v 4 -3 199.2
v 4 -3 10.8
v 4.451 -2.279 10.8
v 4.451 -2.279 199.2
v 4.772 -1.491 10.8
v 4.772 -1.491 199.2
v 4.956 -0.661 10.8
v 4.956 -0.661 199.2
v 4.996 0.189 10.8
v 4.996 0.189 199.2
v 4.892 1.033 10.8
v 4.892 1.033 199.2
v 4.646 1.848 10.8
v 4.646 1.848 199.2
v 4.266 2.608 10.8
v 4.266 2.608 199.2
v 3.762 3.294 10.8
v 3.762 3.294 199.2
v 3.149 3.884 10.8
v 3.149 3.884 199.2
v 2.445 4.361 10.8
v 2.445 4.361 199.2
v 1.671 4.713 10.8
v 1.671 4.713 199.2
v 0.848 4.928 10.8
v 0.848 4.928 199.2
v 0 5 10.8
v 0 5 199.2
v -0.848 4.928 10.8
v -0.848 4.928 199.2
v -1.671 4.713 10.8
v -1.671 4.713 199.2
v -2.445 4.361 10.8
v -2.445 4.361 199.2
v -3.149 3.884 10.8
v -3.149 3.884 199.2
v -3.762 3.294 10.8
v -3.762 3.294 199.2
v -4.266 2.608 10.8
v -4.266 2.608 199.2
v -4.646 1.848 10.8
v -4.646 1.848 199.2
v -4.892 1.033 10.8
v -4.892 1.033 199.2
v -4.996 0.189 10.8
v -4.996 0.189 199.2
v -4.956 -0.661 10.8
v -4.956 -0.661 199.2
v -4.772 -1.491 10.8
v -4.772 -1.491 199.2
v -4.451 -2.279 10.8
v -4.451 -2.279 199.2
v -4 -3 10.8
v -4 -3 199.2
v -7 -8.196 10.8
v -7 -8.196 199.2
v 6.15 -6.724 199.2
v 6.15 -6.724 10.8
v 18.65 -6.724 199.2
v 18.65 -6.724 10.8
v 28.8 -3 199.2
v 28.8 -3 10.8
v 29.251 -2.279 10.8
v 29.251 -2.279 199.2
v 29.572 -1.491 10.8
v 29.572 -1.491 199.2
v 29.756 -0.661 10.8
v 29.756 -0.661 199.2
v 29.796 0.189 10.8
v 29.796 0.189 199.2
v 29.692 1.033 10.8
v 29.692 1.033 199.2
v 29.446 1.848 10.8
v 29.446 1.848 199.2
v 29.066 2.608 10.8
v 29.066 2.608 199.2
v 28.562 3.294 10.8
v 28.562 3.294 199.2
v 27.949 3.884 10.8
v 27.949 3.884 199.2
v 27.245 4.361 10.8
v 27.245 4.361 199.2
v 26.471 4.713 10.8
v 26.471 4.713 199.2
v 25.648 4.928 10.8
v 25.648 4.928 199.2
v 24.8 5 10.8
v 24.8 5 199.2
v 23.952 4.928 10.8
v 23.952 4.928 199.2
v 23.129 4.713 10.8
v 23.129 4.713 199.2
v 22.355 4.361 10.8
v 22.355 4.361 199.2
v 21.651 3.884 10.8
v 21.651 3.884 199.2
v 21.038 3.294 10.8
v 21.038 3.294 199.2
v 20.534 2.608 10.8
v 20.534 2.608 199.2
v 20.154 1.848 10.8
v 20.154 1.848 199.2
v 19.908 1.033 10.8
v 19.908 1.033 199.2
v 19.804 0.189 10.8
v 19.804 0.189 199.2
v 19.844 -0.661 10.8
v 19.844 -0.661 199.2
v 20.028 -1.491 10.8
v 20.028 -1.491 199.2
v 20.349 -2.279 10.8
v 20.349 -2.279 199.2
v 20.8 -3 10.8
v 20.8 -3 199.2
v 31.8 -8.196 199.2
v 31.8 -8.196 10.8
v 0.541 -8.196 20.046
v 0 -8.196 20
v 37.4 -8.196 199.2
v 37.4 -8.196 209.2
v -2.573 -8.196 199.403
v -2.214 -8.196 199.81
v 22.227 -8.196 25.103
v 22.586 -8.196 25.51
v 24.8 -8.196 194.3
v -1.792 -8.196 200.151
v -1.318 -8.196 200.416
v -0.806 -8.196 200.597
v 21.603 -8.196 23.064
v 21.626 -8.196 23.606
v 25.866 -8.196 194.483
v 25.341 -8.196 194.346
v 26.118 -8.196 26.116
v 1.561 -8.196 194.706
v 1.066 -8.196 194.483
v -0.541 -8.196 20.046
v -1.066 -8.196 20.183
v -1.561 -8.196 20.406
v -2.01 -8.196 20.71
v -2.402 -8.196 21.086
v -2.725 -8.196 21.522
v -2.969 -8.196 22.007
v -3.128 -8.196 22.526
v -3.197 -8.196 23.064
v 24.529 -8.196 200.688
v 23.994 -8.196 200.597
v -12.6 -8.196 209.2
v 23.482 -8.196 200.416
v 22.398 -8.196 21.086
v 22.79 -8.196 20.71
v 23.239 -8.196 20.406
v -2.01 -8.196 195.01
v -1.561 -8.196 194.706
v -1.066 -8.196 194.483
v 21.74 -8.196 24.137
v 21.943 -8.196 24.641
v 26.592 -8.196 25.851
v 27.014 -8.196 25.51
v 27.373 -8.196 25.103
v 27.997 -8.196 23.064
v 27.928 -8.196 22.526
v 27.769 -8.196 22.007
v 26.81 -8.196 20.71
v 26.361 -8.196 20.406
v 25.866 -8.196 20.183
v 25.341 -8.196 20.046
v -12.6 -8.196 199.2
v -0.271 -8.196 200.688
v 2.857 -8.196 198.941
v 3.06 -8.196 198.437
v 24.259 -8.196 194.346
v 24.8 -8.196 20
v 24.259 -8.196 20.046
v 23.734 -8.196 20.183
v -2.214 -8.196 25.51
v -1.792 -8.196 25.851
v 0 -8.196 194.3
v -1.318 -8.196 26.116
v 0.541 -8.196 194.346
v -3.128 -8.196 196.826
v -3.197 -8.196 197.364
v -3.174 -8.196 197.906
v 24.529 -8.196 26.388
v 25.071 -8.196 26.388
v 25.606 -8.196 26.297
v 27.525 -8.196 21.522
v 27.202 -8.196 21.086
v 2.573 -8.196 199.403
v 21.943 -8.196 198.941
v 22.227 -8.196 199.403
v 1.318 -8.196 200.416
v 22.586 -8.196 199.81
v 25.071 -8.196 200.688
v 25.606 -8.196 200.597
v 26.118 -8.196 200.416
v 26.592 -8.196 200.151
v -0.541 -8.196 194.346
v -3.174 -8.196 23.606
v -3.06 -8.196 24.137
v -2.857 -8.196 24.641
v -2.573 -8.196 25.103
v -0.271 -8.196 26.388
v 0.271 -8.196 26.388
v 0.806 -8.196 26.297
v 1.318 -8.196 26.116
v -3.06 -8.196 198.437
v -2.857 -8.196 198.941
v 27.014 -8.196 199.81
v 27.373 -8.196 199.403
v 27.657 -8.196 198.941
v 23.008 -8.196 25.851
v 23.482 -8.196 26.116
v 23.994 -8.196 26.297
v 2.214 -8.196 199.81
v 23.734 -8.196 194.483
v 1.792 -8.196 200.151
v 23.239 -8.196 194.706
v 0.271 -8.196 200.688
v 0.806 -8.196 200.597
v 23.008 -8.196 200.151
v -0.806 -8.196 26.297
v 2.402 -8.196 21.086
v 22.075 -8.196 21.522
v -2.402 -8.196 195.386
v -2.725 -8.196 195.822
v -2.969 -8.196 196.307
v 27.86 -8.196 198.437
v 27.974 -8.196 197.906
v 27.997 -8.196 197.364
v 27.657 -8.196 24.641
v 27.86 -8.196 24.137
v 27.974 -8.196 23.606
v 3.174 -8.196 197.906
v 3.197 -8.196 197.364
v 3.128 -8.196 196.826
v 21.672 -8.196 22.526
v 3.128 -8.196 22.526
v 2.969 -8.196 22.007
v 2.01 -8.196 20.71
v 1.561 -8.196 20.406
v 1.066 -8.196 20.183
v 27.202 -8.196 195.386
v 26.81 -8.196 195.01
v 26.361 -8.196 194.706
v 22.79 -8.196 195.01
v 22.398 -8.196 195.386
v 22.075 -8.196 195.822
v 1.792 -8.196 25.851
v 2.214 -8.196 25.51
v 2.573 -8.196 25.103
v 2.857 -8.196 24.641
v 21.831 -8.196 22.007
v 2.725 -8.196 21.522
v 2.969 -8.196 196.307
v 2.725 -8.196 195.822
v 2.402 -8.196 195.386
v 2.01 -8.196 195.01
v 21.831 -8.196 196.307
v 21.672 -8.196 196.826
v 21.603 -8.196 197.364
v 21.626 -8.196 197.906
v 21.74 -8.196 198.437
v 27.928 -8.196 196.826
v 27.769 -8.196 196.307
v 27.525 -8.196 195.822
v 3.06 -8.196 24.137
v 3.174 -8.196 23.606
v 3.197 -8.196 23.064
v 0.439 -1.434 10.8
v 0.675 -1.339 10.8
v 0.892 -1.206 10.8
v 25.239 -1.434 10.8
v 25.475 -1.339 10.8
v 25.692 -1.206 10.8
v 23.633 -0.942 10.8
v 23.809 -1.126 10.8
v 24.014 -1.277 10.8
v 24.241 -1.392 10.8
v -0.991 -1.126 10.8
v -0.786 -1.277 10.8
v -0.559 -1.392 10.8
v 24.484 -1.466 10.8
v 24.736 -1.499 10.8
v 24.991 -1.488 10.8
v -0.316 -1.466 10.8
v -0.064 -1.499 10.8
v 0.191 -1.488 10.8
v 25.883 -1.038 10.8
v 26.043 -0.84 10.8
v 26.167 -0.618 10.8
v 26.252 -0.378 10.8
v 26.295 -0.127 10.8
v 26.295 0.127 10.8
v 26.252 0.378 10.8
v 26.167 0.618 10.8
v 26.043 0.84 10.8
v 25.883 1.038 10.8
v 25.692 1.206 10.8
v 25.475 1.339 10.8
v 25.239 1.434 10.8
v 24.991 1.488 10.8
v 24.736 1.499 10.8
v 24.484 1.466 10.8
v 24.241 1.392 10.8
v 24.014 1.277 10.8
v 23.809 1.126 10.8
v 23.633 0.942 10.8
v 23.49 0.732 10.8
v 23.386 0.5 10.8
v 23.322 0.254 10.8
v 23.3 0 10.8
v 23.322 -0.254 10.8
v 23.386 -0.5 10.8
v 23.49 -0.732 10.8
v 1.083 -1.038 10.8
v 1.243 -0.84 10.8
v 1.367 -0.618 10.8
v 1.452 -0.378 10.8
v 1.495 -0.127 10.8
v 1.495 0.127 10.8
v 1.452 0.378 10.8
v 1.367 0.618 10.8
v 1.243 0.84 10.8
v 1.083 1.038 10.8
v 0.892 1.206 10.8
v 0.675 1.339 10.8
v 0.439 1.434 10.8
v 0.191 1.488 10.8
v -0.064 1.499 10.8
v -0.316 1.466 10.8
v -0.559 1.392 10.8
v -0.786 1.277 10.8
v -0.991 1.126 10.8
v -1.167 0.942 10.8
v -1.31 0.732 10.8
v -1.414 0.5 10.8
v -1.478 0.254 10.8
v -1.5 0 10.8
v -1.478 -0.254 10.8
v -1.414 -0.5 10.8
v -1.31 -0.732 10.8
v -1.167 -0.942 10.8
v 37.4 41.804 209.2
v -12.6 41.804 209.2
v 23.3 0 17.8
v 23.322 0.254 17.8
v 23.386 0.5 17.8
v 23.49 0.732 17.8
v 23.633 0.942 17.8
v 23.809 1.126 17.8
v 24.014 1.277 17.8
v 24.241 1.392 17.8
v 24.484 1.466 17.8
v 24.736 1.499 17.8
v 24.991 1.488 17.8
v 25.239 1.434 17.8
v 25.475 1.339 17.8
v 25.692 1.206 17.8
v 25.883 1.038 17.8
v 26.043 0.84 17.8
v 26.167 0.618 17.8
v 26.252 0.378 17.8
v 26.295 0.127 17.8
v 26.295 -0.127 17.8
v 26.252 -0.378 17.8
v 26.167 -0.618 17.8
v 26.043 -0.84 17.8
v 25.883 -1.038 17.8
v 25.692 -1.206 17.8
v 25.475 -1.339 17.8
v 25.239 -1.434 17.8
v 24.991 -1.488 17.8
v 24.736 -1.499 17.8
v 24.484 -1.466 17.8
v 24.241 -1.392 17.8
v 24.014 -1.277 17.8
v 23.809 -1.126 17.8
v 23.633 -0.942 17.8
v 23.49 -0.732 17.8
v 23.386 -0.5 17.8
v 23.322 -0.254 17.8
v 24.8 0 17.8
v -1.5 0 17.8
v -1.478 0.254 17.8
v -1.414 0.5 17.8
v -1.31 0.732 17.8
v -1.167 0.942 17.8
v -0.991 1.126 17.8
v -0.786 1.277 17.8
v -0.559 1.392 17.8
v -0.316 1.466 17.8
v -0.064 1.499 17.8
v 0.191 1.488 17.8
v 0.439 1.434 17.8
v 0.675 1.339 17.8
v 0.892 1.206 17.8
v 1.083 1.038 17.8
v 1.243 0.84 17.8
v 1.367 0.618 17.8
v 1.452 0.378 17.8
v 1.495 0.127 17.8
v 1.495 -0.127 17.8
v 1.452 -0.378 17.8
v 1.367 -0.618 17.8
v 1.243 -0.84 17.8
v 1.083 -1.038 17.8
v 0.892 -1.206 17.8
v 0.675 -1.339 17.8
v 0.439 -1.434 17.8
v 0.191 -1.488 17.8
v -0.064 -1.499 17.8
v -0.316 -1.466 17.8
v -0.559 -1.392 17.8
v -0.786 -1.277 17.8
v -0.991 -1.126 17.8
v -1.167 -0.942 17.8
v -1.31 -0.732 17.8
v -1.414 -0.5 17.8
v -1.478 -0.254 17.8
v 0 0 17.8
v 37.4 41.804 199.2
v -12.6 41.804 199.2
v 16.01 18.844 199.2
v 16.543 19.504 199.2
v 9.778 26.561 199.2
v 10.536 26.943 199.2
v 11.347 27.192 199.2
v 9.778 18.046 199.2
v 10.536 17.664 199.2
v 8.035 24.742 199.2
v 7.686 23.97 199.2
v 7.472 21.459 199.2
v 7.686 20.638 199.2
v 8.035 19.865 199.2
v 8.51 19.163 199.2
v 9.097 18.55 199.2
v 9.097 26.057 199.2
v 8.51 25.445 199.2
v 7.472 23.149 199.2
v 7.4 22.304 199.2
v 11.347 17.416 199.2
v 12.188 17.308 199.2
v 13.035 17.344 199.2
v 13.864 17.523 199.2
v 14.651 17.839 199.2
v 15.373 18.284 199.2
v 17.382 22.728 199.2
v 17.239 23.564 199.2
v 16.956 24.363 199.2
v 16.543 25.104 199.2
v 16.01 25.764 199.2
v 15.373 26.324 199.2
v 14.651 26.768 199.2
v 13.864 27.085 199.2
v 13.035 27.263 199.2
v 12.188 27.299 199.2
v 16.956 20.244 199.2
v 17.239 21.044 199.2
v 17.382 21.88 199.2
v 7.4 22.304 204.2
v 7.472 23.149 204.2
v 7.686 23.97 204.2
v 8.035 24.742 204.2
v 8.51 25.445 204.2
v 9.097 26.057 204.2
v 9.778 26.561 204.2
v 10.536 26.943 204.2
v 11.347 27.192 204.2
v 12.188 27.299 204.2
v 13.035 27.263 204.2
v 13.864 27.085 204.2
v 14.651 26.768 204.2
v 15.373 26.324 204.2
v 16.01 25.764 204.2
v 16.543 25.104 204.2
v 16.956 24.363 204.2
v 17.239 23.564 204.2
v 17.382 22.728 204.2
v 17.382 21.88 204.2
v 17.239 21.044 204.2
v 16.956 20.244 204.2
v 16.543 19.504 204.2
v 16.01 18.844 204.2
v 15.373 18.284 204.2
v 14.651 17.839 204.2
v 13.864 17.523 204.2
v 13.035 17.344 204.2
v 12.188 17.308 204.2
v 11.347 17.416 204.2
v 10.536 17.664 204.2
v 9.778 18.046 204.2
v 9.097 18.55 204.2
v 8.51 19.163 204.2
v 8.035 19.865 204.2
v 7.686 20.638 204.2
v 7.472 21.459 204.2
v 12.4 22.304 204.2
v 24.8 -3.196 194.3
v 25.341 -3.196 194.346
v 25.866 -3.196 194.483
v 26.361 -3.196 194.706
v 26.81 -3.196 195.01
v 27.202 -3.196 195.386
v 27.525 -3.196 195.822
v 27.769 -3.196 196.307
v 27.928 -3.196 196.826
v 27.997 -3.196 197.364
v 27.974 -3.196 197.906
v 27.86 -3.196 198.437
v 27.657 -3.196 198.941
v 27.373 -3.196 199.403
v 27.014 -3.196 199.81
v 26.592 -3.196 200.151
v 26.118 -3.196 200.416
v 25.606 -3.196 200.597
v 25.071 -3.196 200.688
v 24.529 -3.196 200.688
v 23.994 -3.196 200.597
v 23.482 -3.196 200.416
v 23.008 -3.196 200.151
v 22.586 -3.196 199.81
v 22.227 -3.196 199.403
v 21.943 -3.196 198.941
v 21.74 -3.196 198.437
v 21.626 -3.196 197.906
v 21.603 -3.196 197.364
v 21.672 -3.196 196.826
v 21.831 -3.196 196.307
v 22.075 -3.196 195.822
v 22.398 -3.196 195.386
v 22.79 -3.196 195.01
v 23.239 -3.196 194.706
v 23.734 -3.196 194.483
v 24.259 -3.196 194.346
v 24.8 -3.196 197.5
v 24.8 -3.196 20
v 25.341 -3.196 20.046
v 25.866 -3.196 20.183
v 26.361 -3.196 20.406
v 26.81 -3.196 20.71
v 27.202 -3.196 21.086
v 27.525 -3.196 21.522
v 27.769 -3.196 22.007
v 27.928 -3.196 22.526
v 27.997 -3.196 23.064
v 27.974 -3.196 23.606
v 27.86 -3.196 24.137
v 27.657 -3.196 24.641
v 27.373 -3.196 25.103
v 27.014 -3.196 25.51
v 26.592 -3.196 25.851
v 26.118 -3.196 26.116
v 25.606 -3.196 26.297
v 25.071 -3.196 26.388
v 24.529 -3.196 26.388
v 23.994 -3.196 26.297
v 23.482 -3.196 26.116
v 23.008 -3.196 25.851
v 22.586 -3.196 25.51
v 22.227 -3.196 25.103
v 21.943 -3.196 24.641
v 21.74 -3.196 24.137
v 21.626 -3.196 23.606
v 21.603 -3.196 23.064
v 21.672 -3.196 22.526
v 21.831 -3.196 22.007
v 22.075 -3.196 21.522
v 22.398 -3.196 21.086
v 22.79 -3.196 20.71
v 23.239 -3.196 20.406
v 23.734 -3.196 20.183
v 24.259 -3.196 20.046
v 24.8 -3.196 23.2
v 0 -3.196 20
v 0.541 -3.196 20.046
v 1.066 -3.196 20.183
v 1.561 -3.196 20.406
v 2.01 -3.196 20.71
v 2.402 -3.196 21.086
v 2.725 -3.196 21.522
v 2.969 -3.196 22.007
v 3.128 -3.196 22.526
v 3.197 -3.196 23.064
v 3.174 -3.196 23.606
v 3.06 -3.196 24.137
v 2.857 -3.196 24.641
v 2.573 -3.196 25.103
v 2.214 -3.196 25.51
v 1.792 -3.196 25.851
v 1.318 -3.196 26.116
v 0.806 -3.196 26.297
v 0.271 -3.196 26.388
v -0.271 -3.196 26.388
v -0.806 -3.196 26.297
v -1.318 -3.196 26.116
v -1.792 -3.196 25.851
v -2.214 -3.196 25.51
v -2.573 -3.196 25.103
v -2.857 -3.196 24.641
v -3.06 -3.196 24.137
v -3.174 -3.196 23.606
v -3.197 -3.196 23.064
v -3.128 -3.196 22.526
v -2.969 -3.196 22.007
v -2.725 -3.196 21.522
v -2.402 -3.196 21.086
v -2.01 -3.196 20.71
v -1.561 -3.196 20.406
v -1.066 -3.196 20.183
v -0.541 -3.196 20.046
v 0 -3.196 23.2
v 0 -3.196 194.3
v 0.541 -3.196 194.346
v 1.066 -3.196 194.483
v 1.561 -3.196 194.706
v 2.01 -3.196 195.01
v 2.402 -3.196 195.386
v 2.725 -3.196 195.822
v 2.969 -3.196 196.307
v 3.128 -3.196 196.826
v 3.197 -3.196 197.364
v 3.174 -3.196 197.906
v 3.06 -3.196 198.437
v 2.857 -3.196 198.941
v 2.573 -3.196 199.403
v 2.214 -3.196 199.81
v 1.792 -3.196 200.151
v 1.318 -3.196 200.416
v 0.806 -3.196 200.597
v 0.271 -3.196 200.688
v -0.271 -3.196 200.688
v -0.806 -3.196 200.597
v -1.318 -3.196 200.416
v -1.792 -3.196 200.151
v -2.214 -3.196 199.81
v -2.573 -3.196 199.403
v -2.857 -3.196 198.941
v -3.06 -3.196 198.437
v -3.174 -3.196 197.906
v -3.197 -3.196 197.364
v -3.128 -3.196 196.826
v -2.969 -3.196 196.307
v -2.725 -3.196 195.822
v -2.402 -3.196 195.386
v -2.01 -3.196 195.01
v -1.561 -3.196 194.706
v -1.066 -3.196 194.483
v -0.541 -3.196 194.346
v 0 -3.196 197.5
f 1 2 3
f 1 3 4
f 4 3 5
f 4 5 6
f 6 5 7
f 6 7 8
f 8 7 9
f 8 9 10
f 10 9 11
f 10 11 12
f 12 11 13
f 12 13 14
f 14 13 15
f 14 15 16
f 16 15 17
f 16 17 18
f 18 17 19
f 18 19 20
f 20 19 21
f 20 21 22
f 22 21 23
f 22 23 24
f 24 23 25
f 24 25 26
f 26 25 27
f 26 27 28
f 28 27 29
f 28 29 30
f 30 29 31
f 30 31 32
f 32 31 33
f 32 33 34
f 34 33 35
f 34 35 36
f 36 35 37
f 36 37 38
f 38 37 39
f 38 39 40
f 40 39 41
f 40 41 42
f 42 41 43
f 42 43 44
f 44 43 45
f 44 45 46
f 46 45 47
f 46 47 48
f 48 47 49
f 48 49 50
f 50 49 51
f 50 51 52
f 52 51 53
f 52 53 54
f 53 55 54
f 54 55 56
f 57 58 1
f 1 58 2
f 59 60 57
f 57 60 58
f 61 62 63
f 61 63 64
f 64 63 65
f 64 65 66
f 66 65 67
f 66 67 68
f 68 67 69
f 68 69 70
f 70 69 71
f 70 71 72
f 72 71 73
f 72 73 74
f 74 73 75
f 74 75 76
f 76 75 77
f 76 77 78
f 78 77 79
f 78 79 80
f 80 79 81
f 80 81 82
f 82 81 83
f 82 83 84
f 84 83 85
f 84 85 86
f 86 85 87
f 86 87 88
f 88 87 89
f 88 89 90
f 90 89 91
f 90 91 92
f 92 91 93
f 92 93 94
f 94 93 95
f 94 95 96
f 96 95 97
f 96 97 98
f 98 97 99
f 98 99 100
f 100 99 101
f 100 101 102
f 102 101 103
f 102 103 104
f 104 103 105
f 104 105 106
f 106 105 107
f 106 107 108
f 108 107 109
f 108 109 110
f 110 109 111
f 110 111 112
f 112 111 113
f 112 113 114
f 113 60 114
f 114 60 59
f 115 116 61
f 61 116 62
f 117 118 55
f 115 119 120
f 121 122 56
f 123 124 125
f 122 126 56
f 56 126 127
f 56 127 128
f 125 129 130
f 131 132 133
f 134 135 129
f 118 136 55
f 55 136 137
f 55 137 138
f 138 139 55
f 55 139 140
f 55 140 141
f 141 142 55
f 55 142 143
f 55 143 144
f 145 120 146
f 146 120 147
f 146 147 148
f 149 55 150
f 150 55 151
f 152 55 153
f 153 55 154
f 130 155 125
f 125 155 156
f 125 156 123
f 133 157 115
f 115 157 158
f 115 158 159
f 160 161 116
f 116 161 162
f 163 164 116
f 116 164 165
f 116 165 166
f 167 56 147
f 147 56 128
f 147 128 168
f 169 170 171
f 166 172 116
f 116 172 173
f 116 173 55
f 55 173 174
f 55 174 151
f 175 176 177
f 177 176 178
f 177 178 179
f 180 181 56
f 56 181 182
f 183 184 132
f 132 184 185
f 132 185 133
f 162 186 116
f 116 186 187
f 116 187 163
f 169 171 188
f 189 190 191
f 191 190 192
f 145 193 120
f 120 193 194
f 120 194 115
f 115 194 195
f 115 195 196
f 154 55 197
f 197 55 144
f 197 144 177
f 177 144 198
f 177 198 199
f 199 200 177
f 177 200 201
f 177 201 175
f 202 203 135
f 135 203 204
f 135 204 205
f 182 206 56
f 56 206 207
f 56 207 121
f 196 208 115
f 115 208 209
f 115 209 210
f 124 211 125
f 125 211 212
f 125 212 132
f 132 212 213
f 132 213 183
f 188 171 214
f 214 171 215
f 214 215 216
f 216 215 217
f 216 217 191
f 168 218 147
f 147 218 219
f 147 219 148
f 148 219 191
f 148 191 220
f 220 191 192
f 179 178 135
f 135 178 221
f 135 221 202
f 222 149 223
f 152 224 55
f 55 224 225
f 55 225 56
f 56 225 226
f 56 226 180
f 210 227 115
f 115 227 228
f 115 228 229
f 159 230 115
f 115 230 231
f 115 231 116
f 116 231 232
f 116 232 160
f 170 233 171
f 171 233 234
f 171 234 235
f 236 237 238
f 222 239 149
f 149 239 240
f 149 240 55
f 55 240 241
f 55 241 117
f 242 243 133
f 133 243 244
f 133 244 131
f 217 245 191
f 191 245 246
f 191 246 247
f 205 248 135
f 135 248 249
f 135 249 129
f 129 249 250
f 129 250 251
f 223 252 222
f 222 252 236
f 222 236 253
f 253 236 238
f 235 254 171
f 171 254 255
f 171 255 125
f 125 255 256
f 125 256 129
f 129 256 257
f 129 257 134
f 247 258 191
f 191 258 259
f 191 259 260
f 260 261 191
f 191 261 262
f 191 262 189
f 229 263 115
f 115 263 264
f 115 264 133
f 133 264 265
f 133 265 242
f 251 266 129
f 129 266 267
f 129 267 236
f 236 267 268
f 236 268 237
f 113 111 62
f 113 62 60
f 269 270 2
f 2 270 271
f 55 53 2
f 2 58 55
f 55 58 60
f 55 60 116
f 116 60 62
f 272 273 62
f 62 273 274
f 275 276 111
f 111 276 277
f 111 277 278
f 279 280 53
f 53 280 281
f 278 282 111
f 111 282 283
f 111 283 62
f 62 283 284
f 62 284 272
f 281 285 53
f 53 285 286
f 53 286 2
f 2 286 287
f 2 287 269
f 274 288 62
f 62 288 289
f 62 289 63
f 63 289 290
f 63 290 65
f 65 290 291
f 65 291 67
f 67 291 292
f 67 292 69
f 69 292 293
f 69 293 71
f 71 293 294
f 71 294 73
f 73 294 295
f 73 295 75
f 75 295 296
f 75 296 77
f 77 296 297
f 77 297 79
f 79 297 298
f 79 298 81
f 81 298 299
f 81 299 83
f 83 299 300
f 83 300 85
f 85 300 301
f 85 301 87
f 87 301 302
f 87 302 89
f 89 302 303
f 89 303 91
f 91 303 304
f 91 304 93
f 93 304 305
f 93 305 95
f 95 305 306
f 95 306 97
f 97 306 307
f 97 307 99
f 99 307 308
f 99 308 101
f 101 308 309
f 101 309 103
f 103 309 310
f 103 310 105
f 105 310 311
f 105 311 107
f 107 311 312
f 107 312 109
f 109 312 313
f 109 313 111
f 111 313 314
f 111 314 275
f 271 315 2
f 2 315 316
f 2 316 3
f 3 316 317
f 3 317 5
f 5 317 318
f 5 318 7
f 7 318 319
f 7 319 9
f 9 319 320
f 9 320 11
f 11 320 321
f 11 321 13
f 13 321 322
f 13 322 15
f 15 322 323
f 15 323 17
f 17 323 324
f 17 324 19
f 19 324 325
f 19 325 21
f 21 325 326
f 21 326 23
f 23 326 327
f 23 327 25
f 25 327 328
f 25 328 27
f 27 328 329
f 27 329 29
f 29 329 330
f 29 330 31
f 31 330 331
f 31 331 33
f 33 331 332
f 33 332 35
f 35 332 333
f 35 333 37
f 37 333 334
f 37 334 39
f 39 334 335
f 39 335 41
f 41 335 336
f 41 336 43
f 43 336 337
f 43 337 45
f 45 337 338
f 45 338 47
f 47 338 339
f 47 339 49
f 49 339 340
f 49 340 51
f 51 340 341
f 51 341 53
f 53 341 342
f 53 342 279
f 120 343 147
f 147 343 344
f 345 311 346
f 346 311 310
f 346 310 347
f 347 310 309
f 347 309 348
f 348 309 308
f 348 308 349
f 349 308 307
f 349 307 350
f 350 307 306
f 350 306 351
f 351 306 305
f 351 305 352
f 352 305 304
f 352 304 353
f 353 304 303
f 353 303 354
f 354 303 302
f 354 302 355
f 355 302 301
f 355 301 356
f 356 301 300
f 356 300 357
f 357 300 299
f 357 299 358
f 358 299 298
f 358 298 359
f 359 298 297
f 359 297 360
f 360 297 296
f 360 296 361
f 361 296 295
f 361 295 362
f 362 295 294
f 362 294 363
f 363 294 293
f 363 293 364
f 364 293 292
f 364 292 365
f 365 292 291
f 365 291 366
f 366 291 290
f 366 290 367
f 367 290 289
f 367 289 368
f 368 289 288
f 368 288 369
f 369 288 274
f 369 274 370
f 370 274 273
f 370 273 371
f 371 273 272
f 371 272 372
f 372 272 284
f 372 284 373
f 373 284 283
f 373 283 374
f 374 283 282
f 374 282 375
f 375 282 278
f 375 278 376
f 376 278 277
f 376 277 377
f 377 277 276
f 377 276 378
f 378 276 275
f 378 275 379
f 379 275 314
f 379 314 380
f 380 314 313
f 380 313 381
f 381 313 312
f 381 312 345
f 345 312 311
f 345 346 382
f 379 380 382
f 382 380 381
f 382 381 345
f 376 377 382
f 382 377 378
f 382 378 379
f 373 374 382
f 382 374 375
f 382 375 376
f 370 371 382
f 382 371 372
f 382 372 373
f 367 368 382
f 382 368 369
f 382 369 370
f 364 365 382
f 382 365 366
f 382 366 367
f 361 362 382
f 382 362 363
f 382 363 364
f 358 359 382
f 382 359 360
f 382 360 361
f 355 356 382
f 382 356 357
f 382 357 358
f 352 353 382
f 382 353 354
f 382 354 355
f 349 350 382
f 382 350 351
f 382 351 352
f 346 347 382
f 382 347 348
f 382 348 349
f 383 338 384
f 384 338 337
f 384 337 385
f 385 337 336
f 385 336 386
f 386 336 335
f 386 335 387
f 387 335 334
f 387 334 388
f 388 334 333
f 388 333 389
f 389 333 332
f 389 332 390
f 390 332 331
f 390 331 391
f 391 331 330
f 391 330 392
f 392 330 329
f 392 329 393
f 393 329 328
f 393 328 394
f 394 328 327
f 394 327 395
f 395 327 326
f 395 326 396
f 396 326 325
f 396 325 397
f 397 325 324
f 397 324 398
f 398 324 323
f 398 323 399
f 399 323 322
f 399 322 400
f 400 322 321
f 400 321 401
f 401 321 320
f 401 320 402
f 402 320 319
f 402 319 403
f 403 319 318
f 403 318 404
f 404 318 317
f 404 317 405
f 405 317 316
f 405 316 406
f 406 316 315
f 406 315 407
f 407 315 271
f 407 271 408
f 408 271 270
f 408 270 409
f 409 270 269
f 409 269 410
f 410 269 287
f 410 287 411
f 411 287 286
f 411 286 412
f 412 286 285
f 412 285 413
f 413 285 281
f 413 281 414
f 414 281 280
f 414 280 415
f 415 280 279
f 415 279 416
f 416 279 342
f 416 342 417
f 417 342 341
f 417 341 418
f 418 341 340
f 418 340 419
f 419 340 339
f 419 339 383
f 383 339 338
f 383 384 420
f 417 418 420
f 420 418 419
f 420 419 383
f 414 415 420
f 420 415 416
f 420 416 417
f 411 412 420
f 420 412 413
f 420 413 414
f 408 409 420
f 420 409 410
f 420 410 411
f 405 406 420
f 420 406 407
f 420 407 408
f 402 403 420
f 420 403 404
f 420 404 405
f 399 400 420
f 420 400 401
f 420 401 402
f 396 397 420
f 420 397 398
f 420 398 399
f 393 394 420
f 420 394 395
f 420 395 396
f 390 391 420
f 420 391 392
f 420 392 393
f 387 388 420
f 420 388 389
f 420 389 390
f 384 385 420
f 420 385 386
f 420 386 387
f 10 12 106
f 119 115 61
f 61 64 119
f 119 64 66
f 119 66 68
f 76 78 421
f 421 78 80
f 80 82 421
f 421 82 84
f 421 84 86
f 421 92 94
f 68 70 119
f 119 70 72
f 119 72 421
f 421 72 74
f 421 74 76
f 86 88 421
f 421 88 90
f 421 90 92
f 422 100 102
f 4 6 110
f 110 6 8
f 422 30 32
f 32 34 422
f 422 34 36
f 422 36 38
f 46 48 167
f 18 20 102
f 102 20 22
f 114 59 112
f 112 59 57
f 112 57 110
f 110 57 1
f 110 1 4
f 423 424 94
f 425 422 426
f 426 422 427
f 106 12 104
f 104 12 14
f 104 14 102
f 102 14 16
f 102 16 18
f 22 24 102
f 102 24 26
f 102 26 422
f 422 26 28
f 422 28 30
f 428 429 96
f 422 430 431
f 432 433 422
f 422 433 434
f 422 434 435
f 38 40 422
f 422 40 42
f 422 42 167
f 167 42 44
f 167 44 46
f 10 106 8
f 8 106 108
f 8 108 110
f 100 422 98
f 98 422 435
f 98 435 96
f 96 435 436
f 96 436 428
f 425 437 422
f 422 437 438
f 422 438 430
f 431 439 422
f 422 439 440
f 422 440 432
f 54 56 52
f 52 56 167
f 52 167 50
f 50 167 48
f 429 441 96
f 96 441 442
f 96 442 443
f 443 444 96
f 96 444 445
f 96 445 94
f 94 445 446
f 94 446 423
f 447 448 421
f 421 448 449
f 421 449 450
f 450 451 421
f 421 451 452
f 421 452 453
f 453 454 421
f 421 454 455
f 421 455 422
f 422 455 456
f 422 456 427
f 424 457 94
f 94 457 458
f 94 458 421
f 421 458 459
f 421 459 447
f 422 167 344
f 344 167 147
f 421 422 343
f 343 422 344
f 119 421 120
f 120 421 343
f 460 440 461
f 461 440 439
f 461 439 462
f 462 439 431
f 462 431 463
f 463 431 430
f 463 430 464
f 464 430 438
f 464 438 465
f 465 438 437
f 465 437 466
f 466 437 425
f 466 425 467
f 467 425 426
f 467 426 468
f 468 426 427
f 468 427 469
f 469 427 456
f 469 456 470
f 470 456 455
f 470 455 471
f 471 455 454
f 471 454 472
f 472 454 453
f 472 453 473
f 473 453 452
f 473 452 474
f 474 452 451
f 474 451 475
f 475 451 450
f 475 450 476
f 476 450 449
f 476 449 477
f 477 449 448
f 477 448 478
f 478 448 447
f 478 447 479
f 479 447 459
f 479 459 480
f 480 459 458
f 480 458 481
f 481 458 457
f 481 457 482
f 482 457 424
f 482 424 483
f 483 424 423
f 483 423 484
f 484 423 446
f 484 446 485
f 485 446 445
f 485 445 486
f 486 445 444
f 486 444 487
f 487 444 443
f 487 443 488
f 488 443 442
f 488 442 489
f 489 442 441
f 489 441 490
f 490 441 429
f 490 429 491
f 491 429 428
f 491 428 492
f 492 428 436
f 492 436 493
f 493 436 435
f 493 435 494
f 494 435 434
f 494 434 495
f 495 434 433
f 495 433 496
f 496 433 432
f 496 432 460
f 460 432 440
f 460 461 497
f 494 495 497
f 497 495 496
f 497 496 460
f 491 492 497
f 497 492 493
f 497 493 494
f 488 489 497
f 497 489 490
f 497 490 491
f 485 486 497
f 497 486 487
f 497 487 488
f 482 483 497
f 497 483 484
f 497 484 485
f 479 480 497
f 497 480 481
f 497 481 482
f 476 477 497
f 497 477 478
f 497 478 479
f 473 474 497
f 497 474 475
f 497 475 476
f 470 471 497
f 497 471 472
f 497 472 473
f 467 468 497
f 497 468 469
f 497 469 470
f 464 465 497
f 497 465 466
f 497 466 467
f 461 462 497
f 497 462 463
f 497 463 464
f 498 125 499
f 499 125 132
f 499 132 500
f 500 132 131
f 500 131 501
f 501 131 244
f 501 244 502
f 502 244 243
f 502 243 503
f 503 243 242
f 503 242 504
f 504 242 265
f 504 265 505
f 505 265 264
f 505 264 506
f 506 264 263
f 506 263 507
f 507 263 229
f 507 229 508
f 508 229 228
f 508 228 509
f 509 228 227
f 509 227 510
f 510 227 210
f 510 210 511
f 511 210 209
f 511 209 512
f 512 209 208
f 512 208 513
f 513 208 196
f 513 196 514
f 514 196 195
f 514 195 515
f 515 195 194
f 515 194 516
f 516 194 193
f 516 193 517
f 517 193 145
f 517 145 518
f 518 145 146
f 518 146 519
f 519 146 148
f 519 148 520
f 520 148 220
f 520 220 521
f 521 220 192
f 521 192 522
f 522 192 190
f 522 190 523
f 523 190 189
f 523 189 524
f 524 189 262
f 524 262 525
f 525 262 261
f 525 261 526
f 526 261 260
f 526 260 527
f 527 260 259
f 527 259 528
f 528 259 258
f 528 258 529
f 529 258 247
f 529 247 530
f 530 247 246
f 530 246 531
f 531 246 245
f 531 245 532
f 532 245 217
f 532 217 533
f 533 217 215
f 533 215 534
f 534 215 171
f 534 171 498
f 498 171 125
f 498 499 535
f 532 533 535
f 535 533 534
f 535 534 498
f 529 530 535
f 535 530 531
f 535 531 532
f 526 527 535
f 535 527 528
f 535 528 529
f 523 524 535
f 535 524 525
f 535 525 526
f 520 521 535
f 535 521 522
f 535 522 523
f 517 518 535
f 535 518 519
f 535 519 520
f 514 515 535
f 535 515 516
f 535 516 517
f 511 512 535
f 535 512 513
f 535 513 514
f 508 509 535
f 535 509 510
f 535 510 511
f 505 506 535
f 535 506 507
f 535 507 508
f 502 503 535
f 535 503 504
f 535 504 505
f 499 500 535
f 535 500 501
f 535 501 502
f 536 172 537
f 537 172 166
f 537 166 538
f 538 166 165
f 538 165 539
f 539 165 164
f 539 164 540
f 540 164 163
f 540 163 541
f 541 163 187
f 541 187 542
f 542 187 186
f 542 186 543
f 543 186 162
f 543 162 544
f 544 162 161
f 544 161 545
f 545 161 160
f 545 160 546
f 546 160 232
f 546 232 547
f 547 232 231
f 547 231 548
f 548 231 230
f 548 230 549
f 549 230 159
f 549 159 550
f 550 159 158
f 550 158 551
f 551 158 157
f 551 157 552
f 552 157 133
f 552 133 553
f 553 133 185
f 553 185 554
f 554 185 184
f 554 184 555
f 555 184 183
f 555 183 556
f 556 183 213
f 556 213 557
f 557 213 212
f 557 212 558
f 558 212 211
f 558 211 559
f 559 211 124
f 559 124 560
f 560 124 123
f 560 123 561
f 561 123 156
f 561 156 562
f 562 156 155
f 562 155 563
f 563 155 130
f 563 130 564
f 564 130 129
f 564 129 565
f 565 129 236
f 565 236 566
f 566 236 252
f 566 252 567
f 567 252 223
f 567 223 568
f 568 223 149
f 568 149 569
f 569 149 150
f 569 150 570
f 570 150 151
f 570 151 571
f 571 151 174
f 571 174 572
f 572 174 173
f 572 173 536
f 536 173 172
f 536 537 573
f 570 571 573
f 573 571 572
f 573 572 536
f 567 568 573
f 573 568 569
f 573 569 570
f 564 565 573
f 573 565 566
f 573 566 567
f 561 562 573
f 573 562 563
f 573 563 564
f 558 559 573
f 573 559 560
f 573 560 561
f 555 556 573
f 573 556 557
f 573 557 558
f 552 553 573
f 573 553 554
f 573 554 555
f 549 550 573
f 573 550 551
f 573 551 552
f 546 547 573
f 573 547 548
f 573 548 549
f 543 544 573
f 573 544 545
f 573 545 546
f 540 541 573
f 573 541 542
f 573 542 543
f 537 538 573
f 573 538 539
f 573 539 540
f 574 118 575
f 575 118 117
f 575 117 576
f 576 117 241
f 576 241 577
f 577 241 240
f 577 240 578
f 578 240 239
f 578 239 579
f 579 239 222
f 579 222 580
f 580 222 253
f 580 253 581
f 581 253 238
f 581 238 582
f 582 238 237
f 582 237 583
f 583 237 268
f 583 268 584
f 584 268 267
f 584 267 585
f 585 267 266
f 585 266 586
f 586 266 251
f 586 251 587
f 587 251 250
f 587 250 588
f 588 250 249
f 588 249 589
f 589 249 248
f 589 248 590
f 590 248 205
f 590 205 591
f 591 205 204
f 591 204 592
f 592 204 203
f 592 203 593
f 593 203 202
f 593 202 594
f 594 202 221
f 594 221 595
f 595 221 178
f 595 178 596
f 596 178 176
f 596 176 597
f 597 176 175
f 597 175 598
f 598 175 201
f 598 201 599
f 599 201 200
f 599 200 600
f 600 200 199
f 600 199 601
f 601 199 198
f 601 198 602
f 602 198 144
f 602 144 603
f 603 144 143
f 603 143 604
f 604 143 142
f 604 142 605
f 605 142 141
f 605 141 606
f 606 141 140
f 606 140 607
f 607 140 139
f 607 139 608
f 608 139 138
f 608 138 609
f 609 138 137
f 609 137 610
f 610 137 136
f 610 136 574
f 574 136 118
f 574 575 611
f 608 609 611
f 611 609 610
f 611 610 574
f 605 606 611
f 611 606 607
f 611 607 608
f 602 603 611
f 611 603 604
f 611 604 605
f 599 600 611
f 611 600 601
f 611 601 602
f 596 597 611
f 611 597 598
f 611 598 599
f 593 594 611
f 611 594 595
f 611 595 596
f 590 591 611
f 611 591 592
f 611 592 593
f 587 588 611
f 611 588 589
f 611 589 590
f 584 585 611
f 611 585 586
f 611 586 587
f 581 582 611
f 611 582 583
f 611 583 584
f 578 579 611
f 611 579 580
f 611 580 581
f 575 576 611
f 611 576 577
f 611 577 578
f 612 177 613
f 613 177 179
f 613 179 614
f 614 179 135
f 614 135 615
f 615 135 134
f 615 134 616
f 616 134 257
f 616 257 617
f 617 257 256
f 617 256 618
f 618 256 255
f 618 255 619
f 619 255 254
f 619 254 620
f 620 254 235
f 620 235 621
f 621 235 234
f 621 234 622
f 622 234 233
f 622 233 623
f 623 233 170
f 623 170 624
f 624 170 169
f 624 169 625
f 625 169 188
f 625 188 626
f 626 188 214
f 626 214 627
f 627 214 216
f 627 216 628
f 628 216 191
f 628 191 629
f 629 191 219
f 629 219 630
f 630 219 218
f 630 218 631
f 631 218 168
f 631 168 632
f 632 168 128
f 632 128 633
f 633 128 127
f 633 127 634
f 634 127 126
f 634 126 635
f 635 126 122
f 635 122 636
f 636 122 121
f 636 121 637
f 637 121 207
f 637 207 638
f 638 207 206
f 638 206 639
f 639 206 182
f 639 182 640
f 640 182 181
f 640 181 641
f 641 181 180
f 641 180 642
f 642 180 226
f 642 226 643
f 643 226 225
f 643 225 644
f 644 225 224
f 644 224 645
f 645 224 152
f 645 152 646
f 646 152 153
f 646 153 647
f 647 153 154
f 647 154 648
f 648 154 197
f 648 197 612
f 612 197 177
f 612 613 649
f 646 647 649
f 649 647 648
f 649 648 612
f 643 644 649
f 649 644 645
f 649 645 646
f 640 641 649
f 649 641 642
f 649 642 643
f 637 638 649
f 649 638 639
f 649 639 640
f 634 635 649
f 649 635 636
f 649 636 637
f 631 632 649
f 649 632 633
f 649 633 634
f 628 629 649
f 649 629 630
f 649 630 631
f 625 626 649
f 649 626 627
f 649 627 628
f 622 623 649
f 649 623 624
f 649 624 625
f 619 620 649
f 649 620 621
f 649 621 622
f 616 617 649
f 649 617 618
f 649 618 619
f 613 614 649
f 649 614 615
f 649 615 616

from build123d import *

# Parameters (mm, degrees)
BOSS_EXTRUDE1_DEPTH   = 220
BOSS_EXTRUDE1_2_DEPTH = 220
BOSS_EXTRUDE4_DEPTH   = 220
SKETCH5_R             = 1.37
CUT_EXTRUDE1_DEPTH    = 7
CUT_EXTRUDE2_START    = -7
SKETCH6_R             = 1.37
CUT_EXTRUDE2_DEPTH    = 7
CUT_EXTRUDE4_DEPTH    = 10.8
CUT_EXTRUDE5_START    = -10.8
CUT_EXTRUDE5_DEPTH    = 10.8
SKETCH11_R            = 2
CUT_EXTRUDE6_DEPTH    = 7
SKETCH12_R            = 1.5
CUT_EXTRUDE7_DEPTH    = 7
SKETCH13_W            = 50
SKETCH13_H            = 50
BOSS_EXTRUDE5_DEPTH   = 10
SKETCH14_R            = 5
CUT_EXTRUDE8_DEPTH    = 5
SKETCH4_2_R           = 3.2
CUT_EXTRUDE9_DEPTH    = 5


with BuildPart() as part:
    # Sketch1 → Boss-Extrude1 (new body)
    with BuildSketch(Plane.XY):
        with BuildLine():
            Line((-4, -3), (-7, -8.196152423))
            Line((-7, -8.196152423), (7, -8.196152423))
            Line((7, -8.196152423), (4, -3))
            ThreePointArc((4, -3), (0, 5), (-4, -3))
        make_face()
    extrude(amount=BOSS_EXTRUDE1_DEPTH)



with BuildPart() as body_2:
    # Sketch1 → Boss-Extrude1 2 (new body)
    with BuildSketch(Plane.XY):
        with BuildLine():
            Line((31.8, -8.196152423), (28.8, -3))
            ThreePointArc((28.8, -3), (24.8, 5), (20.8, -3))
            Line((20.8, -3), (17.8, -8.196152423))
            Line((17.8, -8.196152423), (31.8, -8.196152423))
        make_face()
    extrude(amount=BOSS_EXTRUDE1_2_DEPTH)


with BuildPart() as part_1:
    add(part.part)

    add(body_2.part)  # Boss-Extrude4 merges body 2
    # Sketch3 → Boss-Extrude4 (add)
    with BuildSketch(Plane.XY.offset(220)):
        Polygon((7, -8.196152423), (17.8, -8.196152423), (18.65, -8.196152423), (18.65, -6.723909236), (6.15, -6.723909236), (6.15, -8.196152423), align=None)
    extrude(amount=-BOSS_EXTRUDE4_DEPTH)

    # Sketch5 → Cut-Extrude1 (cut)
    with BuildSketch(Plane(origin=(0, 0, 0), x_dir=(-1, 0, 0), z_dir=(0, 0, -1))):
        Circle(SKETCH5_R)
        with Locations((-24.8, 0)):
            Circle(SKETCH5_R)
    extrude(amount=-CUT_EXTRUDE1_DEPTH, mode=Mode.SUBTRACT)

    # Sketch6 → Cut-Extrude2 (cut)
    with BuildSketch(Plane.XY.offset(220).offset(CUT_EXTRUDE2_START)):
        Circle(SKETCH6_R)
        with Locations((24.8, 0)):
            Circle(SKETCH6_R)
    extrude(amount=CUT_EXTRUDE2_DEPTH, mode=Mode.SUBTRACT)

    # Sketch9 → Cut-Extrude4 (cut)
    with BuildSketch(Plane(origin=(0, 0, 0), x_dir=(-1, 0, 0), z_dir=(0, 0, -1))):
        with BuildLine():
            Line((-28.8, -3), (-31.8, -8.196152423))
            Line((-31.8, -8.196152423), (7, -8.196152423))
            Line((7, -8.196152423), (4, -3))
            ThreePointArc((4, -3), (0, 5), (-4, -3))
            Line((-4, -3), (-6.15, -6.723909236))
            Line((-6.15, -6.723909236), (-18.65, -6.723909236))
            Line((-18.65, -6.723909236), (-20.8, -3))
            ThreePointArc((-20.8, -3), (-24.8, 5), (-28.8, -3))
        make_face()
    extrude(amount=-CUT_EXTRUDE4_DEPTH, mode=Mode.SUBTRACT)

    # Sketch10 → Cut-Extrude5 (cut)
    with BuildSketch(Plane.XY.offset(220).offset(CUT_EXTRUDE5_START)):
        with BuildLine():
            Line((20.8, -3), (18.65, -6.723909236))
            Line((18.65, -6.723909236), (6.15, -6.723909236))
            Line((6.15, -6.723909236), (4, -3))
            ThreePointArc((4, -3), (0, 5), (-4, -3))
            Line((-4, -3), (-7, -8.196152423))
            Line((-7, -8.196152423), (31.8, -8.196152423))
            Line((31.8, -8.196152423), (28.8, -3))
            ThreePointArc((28.8, -3), (24.8, 5), (20.8, -3))
        make_face()
    extrude(amount=CUT_EXTRUDE5_DEPTH, mode=Mode.SUBTRACT)

    # Sketch11 → Cut-Extrude6 (cut)
    with BuildSketch(Plane.XY.offset(209.2)):
        Circle(SKETCH11_R)
        with Locations((24.8, 0)):
            Circle(SKETCH11_R)
    extrude(amount=-CUT_EXTRUDE6_DEPTH, mode=Mode.SUBTRACT)

    # Sketch12 → Cut-Extrude7 (cut)
    with BuildSketch(Plane(origin=(0, 0, 10.8), x_dir=(-1, 0, 0), z_dir=(0, 0, -1))):
        Circle(SKETCH12_R)
        with Locations((-24.8, 0)):
            Circle(SKETCH12_R)
    extrude(amount=-CUT_EXTRUDE7_DEPTH, mode=Mode.SUBTRACT)

    # Sketch13 → Boss-Extrude5 (add)
    with BuildSketch(Plane.XY.offset(209.2)):
        with Locations((12.4, 16.803847577)):
            Rectangle(SKETCH13_W, SKETCH13_H)
    extrude(amount=-BOSS_EXTRUDE5_DEPTH)

    # Sketch14 → Cut-Extrude8 (cut)
    with BuildSketch(Plane(origin=(0, 0, 199.2), x_dir=(-1, 0, 0), z_dir=(0, 0, -1))):
        with Locations((-12.4, 22.303847577)):
            Circle(SKETCH14_R)
    extrude(amount=-CUT_EXTRUDE8_DEPTH, mode=Mode.SUBTRACT)

    # Sketch4<2> → Cut-Extrude9 (cut)
    with BuildSketch(Plane.XZ.offset(8.196152423)):
        with Locations((0, 197.5)):
            Circle(SKETCH4_2_R)
        with Locations((24.8, 197.5)):
            Circle(SKETCH4_2_R)
        with Locations((24.8, 23.2)):
            Circle(SKETCH4_2_R)
        with Locations((0, 23.2)):
            Circle(SKETCH4_2_R)
    extrude(amount=-CUT_EXTRUDE9_DEPTH, mode=Mode.SUBTRACT)


solid = part_1.part
